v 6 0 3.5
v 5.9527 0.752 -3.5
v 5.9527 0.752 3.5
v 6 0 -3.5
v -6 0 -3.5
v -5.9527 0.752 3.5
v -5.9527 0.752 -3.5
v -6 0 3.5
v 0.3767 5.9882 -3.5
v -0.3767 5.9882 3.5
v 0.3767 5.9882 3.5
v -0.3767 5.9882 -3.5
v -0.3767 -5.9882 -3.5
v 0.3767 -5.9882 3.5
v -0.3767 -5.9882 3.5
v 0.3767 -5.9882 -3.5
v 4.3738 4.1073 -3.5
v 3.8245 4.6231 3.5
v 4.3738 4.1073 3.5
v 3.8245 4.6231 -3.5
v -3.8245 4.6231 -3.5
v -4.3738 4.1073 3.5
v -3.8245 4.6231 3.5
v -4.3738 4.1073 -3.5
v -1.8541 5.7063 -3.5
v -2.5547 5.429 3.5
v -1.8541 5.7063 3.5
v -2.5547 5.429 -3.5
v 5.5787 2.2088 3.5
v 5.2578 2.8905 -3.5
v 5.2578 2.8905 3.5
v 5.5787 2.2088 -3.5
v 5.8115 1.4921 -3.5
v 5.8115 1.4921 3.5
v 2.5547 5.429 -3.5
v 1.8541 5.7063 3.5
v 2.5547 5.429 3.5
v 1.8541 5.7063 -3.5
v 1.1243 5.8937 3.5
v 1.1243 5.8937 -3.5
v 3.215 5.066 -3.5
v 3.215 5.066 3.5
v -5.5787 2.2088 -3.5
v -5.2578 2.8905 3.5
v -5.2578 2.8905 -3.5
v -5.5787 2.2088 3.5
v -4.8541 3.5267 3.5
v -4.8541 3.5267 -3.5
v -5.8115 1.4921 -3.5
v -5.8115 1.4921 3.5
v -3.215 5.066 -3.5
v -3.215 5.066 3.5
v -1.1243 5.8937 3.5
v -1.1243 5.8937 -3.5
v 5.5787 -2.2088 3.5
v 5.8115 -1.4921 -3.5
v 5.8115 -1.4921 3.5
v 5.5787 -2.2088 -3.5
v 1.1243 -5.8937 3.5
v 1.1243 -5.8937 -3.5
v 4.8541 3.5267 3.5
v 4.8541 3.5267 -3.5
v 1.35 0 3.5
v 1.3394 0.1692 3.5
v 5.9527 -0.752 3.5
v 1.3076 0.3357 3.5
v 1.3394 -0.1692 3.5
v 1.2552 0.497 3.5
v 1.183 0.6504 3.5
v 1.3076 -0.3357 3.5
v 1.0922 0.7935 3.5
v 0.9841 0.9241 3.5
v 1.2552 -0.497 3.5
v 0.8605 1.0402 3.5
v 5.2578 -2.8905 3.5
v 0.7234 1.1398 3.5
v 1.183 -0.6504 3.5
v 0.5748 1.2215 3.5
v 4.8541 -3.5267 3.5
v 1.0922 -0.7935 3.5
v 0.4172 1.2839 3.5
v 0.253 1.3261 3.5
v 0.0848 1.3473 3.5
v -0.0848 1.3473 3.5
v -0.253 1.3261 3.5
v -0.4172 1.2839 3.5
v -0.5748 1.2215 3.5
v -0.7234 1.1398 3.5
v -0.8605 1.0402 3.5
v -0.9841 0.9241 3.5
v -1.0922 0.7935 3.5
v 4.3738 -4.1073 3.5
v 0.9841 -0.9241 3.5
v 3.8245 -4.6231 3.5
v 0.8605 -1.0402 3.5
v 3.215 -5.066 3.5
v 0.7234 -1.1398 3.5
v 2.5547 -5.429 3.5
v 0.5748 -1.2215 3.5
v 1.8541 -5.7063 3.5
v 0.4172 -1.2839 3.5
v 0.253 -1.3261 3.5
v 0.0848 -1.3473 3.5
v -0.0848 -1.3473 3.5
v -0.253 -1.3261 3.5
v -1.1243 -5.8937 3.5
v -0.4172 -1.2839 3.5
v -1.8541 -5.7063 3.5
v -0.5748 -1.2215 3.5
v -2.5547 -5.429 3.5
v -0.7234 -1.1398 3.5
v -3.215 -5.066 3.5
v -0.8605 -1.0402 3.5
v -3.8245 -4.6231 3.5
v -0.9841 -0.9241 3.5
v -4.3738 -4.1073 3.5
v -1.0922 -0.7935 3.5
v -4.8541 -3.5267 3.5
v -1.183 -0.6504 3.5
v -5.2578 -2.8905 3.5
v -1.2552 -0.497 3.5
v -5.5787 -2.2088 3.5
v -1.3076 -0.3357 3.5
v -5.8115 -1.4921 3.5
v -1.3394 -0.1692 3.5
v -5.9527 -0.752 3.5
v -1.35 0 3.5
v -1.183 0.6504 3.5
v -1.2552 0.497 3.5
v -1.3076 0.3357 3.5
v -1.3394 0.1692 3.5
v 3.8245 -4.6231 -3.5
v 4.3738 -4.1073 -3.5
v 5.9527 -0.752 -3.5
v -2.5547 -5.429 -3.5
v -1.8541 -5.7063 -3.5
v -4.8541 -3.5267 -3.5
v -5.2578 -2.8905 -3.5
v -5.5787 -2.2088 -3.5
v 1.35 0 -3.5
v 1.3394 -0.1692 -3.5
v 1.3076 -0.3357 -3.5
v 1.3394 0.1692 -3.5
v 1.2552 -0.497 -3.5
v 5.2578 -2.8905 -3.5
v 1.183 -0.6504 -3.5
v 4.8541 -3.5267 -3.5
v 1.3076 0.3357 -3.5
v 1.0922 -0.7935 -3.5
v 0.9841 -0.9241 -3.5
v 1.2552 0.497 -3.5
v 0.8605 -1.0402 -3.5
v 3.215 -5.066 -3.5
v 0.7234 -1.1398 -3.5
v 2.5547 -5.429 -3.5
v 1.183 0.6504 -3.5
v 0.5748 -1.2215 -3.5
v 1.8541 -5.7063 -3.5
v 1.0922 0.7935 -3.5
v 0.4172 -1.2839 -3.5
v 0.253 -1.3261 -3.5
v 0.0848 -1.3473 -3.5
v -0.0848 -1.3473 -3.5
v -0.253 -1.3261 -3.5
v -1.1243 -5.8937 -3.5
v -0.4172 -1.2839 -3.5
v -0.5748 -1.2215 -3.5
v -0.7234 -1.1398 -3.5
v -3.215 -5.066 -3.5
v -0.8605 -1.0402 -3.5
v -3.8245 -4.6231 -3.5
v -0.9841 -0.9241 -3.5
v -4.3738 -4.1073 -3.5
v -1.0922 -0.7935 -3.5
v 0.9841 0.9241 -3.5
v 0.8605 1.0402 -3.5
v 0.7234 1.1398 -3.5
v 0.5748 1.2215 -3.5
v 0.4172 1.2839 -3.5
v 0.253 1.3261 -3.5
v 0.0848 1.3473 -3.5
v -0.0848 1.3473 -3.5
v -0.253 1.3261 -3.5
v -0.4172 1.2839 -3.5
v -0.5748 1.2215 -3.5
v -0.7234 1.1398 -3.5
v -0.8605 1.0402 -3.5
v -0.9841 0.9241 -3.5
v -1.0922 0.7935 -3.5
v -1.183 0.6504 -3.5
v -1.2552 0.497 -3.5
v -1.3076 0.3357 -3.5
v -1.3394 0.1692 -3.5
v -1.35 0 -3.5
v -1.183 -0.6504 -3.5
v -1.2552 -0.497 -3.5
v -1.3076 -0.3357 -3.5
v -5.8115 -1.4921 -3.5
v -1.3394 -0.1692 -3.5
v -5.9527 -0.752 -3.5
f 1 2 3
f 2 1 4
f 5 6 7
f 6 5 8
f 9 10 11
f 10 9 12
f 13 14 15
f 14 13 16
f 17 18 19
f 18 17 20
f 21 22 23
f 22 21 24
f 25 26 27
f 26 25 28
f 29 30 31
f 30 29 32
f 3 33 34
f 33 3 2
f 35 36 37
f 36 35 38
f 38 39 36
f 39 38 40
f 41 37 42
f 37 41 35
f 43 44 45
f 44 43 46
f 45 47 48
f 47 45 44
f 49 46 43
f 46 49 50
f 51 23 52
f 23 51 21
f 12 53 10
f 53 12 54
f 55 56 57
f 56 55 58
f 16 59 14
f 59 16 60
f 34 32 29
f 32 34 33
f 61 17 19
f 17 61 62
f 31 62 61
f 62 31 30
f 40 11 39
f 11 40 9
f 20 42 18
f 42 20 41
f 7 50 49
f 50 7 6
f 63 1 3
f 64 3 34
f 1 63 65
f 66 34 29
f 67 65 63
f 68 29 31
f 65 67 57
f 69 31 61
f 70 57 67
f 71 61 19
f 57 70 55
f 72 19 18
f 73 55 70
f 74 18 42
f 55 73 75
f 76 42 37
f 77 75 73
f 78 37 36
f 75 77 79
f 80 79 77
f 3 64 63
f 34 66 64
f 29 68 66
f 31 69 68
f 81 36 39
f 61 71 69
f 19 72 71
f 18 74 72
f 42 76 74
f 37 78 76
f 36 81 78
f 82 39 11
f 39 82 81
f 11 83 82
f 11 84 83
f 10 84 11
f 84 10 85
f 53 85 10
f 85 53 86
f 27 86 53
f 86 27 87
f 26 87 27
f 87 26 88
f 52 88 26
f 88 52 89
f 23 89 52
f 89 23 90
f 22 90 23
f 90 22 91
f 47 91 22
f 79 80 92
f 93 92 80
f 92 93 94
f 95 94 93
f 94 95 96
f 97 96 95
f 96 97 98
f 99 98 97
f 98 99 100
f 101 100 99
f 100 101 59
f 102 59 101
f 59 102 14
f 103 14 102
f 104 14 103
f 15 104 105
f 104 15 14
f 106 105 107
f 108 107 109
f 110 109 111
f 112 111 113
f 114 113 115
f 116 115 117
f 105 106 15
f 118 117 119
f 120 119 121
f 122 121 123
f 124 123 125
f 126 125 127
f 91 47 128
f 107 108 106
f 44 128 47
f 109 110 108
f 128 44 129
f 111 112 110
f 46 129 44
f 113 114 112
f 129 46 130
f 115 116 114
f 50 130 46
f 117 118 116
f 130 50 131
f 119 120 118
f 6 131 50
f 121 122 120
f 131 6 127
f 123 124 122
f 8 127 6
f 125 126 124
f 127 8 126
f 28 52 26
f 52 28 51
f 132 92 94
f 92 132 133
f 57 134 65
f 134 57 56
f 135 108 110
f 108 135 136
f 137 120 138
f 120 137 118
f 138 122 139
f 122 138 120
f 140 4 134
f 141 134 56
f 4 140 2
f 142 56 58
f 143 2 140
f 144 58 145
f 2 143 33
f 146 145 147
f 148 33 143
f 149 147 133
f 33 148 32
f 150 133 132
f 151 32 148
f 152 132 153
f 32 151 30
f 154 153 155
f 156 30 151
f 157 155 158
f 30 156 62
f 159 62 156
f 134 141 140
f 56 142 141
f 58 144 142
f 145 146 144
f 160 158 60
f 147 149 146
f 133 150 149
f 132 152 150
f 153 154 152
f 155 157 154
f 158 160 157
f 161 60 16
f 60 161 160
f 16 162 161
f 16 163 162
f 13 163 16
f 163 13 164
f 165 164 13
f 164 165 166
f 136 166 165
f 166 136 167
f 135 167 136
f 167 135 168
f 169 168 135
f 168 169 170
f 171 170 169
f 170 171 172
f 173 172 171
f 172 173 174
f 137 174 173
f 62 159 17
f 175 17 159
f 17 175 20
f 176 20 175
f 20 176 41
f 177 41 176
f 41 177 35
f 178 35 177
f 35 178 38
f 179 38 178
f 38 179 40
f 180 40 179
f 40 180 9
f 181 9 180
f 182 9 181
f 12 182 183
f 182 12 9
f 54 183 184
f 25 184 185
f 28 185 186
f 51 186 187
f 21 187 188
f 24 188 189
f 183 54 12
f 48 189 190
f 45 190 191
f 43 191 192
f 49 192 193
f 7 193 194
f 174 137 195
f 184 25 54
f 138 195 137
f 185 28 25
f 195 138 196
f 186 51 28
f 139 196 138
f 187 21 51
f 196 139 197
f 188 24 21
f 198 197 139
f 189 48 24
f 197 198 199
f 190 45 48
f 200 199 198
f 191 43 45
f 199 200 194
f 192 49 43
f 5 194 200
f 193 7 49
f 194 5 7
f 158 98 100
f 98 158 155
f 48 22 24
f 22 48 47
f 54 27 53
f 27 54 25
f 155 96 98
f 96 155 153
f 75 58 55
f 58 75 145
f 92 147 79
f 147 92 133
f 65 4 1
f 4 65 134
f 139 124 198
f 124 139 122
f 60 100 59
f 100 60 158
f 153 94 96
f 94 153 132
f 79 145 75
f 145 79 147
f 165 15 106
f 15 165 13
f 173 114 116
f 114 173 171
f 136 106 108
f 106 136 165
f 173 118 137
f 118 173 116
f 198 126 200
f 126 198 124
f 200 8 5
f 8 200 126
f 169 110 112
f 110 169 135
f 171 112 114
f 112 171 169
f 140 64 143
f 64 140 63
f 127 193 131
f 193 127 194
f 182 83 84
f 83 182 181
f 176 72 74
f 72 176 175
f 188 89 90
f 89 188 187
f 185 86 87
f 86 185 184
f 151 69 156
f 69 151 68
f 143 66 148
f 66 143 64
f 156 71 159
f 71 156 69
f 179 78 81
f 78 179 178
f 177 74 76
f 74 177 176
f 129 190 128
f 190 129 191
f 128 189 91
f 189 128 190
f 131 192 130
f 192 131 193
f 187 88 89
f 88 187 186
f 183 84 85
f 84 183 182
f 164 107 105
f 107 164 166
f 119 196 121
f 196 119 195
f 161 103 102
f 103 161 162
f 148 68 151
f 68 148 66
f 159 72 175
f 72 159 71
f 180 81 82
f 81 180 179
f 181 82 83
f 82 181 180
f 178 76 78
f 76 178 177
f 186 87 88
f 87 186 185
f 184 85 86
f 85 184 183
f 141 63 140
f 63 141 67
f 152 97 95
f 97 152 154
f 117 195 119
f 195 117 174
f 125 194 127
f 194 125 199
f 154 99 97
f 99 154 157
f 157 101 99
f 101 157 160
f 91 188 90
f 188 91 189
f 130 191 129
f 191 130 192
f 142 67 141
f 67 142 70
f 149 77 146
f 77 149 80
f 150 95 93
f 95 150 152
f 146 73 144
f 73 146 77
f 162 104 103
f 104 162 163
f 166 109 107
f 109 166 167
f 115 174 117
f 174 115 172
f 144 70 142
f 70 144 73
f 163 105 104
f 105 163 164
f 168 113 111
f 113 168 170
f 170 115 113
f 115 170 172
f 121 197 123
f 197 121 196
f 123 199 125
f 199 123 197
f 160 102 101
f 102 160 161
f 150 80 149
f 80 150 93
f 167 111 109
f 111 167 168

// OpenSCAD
$fn = 50;


difference() {
	union() {
		translate(v = [0, 0, -3.5000000000]) {
			cylinder(h = 7, r = 6.0000000000);
		}
	}
	union() {
		translate(v = [0, 0, -100.0000000000]) {
			cylinder(h = 200, r = 1.3500000000);
		}
	}
}
